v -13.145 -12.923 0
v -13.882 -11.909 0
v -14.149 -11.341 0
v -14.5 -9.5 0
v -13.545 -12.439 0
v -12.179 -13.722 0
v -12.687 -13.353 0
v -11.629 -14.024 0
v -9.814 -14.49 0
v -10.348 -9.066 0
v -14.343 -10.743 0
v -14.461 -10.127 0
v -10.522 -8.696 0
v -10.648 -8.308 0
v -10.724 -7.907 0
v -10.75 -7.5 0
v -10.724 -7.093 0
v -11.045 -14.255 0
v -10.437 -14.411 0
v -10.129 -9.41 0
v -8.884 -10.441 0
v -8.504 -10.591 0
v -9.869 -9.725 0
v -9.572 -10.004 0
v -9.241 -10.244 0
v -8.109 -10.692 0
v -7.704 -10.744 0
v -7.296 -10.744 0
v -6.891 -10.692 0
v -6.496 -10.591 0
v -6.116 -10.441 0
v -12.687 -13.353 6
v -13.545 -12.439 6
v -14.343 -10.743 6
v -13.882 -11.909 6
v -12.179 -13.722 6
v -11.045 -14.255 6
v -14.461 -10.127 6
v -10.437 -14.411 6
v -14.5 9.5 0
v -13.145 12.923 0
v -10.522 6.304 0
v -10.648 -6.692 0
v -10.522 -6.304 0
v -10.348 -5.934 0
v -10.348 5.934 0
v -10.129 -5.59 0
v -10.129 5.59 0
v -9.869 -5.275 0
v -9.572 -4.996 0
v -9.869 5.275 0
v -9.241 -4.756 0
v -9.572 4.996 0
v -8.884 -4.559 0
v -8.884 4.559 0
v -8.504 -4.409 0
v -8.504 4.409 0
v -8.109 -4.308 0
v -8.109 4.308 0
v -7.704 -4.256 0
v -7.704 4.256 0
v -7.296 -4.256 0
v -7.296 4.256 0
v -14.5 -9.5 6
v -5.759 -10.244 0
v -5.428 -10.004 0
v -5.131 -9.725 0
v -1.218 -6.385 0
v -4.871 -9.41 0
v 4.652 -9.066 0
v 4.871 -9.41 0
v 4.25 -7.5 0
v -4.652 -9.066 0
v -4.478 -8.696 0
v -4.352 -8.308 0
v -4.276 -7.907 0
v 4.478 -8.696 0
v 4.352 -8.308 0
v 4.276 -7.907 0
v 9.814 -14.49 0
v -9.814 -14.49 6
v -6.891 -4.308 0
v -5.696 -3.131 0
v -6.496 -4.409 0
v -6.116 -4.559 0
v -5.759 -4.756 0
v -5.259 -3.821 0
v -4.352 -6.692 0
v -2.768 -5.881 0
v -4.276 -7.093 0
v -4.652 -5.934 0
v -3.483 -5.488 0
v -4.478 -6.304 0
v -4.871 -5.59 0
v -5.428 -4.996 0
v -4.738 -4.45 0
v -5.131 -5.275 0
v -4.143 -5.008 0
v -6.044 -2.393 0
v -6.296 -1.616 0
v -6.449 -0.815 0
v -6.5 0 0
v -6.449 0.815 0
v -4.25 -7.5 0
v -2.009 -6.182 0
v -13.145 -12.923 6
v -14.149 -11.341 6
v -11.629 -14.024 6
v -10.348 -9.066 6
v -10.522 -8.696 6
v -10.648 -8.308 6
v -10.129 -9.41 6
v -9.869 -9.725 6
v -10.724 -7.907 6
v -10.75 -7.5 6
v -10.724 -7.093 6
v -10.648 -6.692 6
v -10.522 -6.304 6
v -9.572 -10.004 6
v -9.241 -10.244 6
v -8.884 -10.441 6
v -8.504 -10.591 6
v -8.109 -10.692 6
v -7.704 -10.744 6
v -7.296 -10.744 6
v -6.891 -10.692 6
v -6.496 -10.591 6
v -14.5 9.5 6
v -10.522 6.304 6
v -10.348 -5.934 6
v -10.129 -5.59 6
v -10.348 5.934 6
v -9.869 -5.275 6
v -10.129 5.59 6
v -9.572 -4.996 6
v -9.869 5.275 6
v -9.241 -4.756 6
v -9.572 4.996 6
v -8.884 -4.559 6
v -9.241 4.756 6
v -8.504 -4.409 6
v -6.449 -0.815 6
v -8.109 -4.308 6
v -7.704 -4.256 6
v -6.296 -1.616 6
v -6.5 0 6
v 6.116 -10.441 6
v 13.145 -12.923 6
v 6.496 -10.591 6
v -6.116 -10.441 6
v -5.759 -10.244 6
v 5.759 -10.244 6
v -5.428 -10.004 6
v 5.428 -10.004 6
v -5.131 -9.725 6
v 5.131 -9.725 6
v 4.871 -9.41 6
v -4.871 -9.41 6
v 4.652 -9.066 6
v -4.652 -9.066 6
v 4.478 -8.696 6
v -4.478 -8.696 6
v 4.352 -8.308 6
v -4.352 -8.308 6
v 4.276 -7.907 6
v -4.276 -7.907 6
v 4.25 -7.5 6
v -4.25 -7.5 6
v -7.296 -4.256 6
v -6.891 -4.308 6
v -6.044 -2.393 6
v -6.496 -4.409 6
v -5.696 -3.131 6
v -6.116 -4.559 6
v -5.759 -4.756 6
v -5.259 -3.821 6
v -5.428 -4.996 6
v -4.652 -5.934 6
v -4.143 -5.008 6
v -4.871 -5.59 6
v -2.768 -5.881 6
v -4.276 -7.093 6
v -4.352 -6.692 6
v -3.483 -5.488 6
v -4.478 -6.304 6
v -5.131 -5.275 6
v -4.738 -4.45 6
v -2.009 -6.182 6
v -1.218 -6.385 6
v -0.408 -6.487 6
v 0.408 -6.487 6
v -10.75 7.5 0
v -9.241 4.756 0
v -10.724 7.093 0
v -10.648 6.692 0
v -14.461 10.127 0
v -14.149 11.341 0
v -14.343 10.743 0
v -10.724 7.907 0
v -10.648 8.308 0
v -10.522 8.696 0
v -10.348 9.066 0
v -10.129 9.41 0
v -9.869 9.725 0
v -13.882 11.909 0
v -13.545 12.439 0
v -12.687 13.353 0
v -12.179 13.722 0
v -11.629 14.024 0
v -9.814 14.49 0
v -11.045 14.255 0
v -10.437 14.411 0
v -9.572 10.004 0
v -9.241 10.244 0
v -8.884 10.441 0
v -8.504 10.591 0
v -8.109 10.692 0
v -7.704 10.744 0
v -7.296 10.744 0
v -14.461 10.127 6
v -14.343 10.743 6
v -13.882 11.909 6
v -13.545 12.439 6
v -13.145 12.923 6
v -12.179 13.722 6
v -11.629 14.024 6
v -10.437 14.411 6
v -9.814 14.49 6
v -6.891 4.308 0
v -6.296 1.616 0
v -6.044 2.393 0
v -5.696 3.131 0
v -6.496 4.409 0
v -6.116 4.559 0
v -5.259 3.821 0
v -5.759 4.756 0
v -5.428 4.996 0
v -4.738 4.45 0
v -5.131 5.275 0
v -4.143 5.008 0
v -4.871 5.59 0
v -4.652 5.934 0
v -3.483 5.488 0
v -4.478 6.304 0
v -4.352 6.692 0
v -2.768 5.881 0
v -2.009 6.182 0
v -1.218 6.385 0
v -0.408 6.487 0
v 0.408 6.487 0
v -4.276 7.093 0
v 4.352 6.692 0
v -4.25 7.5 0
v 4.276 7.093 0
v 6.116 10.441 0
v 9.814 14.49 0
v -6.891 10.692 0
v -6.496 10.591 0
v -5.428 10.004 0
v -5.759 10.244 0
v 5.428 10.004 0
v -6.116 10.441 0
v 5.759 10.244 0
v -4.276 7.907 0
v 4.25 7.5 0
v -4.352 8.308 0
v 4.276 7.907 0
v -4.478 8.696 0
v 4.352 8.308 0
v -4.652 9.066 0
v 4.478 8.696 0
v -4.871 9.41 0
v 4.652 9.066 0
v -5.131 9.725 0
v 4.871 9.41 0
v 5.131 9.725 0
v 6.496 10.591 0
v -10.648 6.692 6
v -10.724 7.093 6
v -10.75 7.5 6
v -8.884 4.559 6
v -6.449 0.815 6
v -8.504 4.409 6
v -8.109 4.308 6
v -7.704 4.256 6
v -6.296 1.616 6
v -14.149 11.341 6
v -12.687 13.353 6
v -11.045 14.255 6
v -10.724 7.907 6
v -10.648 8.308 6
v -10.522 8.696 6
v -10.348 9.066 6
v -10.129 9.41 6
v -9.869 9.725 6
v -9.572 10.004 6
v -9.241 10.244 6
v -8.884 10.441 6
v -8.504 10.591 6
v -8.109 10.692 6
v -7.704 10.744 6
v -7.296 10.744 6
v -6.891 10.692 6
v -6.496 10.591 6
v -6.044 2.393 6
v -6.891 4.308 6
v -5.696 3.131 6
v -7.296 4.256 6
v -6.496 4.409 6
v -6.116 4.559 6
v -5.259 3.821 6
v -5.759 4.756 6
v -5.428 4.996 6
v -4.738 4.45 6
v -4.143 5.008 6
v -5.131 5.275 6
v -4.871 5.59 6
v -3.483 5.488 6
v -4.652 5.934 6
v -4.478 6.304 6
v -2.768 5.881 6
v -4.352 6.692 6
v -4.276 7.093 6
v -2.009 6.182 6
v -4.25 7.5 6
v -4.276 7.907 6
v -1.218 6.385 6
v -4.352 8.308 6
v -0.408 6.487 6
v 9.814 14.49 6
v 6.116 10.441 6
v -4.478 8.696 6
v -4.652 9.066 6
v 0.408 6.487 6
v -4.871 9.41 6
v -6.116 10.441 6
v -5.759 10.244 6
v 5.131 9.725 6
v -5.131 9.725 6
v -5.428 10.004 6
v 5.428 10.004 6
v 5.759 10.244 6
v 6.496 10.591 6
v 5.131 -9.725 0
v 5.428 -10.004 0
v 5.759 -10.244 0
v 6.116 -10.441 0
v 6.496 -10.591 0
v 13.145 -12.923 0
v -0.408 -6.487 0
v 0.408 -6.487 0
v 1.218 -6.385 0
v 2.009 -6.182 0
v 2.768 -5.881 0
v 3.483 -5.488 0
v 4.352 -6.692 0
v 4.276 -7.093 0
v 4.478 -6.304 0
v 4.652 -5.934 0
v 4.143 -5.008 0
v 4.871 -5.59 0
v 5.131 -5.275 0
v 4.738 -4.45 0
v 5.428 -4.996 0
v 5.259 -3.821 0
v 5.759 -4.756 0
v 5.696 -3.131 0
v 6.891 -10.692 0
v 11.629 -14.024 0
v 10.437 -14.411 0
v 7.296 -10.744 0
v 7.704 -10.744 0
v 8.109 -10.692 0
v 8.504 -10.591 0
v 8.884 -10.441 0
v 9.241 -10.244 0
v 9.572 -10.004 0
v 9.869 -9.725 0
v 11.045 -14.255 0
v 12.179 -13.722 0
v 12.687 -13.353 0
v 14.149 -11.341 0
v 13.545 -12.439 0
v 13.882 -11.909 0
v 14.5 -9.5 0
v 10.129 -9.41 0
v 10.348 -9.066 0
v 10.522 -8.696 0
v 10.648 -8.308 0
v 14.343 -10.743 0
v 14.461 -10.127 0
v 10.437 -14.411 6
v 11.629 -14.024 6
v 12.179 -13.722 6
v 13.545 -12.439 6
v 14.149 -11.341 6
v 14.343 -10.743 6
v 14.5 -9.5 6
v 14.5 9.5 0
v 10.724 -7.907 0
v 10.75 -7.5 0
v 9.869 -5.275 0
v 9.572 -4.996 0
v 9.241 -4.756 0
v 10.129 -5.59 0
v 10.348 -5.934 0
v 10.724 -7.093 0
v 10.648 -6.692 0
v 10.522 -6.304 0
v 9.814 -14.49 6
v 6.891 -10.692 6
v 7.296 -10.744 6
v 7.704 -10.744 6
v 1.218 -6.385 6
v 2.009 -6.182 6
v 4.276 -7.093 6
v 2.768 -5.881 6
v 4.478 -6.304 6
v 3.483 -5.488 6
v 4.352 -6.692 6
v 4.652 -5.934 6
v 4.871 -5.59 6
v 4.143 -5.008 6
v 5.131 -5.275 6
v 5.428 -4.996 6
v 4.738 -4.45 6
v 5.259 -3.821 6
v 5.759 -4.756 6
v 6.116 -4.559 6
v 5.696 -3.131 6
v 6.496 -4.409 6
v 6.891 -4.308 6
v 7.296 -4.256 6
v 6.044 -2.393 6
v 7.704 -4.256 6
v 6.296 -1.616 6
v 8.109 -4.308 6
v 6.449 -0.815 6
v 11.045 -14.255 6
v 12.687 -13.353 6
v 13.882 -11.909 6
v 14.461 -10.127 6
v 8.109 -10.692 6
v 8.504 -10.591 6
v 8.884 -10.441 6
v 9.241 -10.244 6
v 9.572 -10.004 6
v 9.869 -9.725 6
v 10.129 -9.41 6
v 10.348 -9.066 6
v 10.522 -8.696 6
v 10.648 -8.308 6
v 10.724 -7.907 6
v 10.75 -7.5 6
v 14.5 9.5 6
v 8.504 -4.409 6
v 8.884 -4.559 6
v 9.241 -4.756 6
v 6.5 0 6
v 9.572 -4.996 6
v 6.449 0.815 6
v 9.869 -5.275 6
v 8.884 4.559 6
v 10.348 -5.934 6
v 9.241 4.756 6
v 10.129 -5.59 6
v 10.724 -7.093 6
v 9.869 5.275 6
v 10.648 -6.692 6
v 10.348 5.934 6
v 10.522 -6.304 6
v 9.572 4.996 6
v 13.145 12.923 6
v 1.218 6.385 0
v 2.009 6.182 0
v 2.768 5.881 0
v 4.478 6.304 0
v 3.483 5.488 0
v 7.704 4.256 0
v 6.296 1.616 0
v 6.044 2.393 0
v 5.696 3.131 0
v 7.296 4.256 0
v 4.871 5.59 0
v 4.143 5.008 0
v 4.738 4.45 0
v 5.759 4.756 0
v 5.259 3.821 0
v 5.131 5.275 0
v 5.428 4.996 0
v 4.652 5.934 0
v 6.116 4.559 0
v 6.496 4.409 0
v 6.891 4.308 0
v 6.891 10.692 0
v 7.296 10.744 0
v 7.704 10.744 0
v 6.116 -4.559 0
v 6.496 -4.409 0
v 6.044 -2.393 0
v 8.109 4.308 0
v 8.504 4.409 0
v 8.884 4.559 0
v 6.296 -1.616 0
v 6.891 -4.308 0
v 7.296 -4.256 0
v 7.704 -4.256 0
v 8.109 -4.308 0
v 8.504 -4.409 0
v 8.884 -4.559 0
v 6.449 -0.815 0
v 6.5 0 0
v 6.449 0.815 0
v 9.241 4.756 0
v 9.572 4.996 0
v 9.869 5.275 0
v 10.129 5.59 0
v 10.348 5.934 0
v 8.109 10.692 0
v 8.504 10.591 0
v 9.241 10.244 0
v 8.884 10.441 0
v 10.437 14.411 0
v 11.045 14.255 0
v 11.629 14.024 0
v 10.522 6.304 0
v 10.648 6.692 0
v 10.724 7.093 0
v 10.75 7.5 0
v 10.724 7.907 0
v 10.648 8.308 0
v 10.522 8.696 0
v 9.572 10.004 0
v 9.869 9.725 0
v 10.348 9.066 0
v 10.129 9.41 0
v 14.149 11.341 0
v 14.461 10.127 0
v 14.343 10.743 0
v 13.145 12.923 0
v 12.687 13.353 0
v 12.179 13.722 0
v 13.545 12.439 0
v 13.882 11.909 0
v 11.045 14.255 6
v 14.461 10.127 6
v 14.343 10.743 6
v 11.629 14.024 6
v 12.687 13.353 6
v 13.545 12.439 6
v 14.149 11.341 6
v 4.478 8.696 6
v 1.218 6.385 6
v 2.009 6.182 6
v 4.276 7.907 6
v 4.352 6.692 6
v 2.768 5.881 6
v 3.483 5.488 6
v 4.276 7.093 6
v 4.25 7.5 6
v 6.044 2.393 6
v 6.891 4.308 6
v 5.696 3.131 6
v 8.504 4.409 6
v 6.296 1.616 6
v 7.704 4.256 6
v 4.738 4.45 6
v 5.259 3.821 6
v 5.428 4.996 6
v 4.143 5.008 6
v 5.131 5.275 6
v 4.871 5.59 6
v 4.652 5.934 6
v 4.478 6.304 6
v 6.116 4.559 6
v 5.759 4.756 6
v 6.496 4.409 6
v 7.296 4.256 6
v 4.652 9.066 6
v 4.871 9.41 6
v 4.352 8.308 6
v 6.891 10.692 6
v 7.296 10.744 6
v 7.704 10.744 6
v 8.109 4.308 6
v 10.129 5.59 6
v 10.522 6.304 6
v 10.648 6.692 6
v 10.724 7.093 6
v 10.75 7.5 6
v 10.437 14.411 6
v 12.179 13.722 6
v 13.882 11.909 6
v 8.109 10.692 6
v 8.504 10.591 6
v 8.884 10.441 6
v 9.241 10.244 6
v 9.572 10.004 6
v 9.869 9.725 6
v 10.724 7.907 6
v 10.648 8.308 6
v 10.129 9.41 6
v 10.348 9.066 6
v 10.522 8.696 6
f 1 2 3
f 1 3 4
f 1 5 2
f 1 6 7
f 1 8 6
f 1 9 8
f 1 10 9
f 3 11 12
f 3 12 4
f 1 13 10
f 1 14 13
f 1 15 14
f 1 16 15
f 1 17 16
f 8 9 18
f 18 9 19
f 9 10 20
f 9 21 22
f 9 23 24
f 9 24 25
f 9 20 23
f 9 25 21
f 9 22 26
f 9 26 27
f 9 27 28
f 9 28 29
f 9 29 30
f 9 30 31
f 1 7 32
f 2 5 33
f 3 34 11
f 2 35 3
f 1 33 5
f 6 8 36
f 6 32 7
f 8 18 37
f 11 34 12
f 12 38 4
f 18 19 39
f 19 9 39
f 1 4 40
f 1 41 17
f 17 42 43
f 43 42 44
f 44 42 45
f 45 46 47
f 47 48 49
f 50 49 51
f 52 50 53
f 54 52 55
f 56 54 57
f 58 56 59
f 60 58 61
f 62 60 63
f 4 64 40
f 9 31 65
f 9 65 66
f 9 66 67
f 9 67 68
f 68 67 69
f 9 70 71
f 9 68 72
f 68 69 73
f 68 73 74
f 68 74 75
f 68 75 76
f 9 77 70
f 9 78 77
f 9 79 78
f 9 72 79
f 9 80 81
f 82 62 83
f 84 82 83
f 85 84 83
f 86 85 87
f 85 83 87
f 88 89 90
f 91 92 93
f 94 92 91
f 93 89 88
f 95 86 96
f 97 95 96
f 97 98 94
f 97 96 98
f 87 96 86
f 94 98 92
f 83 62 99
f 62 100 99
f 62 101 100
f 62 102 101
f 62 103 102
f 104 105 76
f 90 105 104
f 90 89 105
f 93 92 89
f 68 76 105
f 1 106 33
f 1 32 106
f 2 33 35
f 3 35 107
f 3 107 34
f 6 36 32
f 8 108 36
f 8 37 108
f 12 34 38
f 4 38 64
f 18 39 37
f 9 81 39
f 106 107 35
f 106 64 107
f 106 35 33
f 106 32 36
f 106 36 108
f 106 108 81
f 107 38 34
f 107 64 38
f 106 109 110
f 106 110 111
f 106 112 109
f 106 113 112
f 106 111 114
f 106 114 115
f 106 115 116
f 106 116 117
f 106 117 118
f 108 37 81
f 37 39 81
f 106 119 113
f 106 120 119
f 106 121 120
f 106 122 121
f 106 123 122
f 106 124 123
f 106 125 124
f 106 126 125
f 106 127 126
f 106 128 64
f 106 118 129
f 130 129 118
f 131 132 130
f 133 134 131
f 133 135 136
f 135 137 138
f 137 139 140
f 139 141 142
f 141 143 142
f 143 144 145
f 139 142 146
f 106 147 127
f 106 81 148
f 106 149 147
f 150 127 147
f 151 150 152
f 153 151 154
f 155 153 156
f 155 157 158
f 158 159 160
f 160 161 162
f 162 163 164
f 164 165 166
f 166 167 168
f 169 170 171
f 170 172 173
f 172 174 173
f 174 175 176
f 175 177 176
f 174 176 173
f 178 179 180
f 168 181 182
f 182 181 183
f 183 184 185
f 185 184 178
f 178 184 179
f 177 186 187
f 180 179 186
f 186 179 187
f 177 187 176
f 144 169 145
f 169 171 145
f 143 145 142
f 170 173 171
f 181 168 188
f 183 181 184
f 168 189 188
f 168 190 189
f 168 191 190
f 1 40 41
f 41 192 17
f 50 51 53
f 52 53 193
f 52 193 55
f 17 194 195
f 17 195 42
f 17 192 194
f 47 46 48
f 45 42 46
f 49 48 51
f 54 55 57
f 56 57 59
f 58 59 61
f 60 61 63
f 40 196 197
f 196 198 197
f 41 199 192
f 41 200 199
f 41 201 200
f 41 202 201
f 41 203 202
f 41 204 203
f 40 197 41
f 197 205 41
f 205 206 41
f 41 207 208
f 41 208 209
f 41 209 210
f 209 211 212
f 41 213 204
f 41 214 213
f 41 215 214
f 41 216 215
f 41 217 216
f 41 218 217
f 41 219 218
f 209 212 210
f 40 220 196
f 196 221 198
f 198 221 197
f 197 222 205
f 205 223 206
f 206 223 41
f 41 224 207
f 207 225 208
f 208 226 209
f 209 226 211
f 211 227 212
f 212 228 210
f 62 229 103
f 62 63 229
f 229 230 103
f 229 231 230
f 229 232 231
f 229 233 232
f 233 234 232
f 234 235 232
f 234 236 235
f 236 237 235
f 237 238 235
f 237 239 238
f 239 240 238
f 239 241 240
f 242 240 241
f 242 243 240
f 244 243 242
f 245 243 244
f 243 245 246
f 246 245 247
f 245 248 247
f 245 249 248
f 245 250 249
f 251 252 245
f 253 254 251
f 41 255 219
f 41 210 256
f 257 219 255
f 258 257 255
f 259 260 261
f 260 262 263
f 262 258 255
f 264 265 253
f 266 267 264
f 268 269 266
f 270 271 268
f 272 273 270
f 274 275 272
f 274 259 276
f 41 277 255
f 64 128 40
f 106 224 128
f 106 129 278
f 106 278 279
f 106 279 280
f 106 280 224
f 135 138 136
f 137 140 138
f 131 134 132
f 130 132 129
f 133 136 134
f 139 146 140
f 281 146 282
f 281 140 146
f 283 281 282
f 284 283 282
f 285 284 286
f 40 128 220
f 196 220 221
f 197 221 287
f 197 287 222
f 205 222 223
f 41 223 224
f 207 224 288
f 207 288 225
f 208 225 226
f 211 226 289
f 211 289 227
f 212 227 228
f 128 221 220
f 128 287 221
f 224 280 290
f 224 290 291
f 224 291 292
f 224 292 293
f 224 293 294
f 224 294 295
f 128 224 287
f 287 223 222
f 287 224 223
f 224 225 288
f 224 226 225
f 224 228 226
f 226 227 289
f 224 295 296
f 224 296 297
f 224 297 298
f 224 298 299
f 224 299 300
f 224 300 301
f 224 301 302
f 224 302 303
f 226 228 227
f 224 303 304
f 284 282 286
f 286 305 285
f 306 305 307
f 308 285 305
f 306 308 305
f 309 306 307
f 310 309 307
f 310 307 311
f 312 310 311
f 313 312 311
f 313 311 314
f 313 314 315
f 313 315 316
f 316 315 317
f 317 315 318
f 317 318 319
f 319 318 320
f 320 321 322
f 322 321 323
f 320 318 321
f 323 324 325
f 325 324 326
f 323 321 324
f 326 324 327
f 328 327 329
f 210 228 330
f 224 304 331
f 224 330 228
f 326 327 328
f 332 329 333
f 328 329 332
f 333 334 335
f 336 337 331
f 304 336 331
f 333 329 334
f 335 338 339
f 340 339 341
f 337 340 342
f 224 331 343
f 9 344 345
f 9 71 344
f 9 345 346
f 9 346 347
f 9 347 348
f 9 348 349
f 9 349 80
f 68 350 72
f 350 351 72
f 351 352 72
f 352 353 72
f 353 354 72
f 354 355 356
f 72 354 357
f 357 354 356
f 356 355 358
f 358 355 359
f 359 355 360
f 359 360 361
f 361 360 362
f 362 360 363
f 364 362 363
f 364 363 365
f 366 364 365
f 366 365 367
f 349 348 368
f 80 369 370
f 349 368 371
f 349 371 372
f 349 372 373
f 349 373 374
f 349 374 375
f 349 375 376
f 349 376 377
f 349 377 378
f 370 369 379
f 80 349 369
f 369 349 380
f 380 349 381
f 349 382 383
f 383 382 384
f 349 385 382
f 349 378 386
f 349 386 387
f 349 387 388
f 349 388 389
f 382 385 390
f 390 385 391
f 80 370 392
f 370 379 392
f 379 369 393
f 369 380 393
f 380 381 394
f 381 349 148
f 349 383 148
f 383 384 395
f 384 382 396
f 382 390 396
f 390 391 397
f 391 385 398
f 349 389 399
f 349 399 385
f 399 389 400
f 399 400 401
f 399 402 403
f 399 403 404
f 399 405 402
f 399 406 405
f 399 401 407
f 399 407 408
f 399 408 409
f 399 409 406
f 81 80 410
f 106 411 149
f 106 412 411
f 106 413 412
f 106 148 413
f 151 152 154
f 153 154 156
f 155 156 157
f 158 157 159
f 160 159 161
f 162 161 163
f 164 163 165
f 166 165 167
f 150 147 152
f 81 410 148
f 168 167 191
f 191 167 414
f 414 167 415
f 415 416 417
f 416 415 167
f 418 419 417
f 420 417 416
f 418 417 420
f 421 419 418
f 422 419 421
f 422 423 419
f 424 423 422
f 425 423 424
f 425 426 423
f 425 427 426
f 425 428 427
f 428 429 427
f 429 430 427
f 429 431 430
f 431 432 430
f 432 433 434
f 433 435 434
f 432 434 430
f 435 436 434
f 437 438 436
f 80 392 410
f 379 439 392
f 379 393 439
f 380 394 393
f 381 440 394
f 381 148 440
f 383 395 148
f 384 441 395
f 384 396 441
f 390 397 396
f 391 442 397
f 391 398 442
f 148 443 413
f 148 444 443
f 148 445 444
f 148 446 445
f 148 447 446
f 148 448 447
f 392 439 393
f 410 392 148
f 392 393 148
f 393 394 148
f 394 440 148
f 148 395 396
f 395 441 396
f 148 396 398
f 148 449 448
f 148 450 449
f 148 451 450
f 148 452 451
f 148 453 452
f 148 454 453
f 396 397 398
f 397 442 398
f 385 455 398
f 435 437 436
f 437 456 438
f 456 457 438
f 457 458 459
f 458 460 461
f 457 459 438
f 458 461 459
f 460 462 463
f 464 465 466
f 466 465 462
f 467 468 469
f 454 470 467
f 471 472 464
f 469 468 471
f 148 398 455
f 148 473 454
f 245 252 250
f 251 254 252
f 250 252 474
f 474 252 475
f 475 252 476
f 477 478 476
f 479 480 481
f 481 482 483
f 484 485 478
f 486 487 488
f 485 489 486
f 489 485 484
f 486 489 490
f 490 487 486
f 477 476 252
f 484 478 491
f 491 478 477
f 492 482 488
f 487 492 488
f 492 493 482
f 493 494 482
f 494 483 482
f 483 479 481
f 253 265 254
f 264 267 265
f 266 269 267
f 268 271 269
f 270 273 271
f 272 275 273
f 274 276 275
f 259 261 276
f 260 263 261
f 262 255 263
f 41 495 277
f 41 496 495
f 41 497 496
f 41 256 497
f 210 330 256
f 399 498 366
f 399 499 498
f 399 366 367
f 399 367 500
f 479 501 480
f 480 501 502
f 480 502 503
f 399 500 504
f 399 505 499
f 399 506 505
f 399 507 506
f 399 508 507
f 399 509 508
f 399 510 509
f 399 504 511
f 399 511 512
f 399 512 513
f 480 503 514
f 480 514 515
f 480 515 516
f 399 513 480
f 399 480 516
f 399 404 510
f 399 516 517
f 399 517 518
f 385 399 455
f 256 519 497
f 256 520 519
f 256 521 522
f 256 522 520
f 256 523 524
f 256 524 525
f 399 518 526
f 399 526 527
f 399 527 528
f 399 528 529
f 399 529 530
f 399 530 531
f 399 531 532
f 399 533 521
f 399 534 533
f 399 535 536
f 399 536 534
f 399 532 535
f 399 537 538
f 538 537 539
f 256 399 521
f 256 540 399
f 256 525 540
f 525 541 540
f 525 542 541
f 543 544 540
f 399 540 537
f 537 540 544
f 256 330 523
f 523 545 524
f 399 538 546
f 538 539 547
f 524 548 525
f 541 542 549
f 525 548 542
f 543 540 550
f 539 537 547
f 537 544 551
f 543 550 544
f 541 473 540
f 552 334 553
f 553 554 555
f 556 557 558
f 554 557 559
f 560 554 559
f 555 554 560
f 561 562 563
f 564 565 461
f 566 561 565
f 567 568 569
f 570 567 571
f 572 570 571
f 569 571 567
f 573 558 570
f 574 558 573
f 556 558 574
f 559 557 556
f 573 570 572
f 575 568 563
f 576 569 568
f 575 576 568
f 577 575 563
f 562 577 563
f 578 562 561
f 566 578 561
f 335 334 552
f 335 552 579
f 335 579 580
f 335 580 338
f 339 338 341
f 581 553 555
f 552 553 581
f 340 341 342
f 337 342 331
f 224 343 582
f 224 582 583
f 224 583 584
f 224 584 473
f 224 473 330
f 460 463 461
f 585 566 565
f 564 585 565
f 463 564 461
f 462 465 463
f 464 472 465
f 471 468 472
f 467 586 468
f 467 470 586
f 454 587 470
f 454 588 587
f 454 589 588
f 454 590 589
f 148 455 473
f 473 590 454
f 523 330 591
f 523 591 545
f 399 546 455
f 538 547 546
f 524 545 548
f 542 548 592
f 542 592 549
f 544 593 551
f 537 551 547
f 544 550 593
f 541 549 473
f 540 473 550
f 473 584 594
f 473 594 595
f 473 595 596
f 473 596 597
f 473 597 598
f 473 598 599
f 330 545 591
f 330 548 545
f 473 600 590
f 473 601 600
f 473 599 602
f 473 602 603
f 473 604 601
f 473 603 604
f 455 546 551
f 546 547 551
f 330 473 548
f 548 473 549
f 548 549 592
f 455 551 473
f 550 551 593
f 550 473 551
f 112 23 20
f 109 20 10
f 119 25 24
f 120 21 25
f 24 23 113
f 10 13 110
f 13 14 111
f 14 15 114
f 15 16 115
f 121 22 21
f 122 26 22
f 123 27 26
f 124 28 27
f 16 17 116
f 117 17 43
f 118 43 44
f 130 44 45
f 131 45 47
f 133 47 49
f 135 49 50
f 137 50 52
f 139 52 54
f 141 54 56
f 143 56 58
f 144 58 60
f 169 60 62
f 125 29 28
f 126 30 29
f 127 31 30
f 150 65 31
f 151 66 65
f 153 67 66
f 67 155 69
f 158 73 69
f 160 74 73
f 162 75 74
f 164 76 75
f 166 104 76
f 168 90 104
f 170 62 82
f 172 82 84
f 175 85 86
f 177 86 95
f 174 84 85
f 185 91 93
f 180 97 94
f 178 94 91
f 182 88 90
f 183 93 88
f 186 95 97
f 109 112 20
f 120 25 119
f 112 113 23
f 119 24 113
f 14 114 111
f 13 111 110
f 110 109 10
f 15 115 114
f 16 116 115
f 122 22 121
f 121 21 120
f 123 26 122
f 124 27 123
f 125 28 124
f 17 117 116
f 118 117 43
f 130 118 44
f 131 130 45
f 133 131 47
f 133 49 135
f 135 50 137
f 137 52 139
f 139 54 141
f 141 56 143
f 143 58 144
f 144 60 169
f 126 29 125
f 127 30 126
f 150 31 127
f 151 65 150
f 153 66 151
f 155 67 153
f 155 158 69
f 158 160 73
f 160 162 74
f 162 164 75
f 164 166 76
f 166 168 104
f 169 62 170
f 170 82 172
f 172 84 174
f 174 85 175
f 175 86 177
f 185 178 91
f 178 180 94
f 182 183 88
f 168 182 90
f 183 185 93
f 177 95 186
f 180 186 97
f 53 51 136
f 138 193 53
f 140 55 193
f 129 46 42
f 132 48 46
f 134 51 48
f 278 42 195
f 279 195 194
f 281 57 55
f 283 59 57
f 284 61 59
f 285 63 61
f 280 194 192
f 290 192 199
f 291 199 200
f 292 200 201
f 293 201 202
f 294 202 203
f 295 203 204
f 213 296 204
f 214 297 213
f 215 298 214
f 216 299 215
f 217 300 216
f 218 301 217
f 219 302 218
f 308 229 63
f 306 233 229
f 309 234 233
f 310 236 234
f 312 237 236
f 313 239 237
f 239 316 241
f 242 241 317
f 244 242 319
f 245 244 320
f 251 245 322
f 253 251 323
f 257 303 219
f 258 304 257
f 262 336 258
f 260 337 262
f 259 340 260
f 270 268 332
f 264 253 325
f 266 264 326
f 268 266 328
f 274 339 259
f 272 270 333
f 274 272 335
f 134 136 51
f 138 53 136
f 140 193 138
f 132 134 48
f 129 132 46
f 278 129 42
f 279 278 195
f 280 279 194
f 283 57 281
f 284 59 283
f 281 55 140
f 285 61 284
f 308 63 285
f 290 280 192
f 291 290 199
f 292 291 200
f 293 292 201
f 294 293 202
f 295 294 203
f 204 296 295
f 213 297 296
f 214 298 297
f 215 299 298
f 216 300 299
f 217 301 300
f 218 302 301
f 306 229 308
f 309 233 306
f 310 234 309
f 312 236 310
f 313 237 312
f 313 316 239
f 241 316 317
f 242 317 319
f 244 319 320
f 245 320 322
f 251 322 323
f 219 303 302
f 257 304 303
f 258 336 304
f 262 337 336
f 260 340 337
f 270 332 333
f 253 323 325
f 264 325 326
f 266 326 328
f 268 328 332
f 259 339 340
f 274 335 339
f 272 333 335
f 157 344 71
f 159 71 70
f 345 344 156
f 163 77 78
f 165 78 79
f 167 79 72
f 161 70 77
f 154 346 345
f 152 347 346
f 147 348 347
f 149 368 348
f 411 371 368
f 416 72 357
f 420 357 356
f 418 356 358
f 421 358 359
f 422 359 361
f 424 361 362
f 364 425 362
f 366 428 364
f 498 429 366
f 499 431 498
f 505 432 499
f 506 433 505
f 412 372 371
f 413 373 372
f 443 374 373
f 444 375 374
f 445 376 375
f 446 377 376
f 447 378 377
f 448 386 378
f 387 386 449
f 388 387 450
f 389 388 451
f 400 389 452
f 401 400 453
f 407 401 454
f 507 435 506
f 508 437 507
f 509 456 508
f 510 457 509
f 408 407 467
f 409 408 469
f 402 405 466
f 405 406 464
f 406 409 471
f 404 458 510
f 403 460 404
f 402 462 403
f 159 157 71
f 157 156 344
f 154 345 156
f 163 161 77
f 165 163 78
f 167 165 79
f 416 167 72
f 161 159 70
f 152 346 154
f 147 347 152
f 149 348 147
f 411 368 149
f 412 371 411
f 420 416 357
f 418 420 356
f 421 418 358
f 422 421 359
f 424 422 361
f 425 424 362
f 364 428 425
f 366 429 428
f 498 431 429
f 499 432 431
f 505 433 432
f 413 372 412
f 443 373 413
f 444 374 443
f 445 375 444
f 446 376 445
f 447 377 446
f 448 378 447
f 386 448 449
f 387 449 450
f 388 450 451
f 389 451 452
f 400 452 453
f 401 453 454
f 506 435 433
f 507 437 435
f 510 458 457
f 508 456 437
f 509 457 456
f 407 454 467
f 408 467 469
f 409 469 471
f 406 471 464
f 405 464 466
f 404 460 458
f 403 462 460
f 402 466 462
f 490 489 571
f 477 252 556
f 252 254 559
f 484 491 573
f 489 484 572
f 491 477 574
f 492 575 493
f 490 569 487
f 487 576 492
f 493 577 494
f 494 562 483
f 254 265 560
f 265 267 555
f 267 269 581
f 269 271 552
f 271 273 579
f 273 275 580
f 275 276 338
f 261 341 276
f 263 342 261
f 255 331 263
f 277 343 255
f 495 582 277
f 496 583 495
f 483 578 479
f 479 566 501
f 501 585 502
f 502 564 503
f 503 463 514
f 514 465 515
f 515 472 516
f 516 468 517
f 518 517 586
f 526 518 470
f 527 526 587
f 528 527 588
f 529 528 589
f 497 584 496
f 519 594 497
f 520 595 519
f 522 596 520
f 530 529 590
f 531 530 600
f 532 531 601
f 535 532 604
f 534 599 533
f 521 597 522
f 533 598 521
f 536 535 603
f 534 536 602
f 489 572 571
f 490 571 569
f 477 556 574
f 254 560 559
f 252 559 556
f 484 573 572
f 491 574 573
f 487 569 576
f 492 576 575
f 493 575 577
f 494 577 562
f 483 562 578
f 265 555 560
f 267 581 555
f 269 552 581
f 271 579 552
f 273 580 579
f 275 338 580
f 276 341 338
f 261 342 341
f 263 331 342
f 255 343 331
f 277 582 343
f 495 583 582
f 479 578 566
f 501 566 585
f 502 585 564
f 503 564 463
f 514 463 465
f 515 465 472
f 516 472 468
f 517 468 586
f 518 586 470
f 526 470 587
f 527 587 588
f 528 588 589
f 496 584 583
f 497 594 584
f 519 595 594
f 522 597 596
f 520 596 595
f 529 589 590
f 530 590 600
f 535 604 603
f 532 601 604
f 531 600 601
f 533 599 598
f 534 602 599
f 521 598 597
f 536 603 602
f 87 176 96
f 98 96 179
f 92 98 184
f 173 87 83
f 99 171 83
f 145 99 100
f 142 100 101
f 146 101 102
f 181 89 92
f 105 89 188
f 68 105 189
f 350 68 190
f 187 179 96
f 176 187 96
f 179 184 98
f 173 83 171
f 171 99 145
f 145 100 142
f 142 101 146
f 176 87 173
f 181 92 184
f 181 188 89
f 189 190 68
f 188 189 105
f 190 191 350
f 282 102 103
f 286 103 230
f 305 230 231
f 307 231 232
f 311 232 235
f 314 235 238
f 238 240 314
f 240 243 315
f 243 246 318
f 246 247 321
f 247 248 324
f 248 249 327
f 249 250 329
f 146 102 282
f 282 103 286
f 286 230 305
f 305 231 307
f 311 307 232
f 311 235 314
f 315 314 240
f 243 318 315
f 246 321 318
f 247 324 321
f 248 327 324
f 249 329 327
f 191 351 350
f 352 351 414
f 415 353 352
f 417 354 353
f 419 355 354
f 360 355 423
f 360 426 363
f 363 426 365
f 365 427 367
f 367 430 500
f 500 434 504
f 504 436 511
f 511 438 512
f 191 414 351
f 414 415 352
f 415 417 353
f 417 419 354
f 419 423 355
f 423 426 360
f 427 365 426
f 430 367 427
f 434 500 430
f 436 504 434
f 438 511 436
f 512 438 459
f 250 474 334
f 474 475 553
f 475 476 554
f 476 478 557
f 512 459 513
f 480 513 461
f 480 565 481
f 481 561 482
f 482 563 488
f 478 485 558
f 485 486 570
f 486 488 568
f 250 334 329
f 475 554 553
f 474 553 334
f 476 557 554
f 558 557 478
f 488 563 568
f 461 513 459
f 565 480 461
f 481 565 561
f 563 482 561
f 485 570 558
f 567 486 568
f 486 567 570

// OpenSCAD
$fn = 50;

difference() {
	union() {
		hull() {
			translate(v = [-9.5, 9.5, 0]) {
				cylinder(h = 6, r = 5);
			}
			translate(v = [9.5, 9.5, 0]) {
				cylinder(h = 6, r = 5);
			}
			translate(v = [-9.5, -9.5, 0]) {
				cylinder(h = 6, r = 5);
			}
			translate(v = [9.5, -9.5, 0]) {
				cylinder(h = 6, r = 5);
			}
		}
	}
	union() {
		translate(v = [-7.5, -7.5, -100.0]) {
			cylinder(h = 200, r = 3.25);
		}
		translate(v = [-7.5, 7.5, -100.0]) {
			cylinder(h = 200, r = 3.25);
		}
		translate(v = [7.5, -7.5, -100.0]) {
			cylinder(h = 200, r = 3.25);
		}
		translate(v = [7.5, 7.5, -100.0]) {
			cylinder(h = 200, r = 3.25);
		}
		translate(v = [-7.5, -7.5, -100.0]) {
			cylinder(h = 200, r = 1.8);
		}
		translate(v = [-7.5, 7.5, -100.0]) {
			cylinder(h = 200, r = 1.8);
		}
		translate(v = [7.5, -7.5, -100.0]) {
			cylinder(h = 200, r = 1.8);
		}
		translate(v = [7.5, 7.5, -100.0]) {
			cylinder(h = 200, r = 1.8);
		}
		cylinder(h = 6, r = 6.5);
	}
}
